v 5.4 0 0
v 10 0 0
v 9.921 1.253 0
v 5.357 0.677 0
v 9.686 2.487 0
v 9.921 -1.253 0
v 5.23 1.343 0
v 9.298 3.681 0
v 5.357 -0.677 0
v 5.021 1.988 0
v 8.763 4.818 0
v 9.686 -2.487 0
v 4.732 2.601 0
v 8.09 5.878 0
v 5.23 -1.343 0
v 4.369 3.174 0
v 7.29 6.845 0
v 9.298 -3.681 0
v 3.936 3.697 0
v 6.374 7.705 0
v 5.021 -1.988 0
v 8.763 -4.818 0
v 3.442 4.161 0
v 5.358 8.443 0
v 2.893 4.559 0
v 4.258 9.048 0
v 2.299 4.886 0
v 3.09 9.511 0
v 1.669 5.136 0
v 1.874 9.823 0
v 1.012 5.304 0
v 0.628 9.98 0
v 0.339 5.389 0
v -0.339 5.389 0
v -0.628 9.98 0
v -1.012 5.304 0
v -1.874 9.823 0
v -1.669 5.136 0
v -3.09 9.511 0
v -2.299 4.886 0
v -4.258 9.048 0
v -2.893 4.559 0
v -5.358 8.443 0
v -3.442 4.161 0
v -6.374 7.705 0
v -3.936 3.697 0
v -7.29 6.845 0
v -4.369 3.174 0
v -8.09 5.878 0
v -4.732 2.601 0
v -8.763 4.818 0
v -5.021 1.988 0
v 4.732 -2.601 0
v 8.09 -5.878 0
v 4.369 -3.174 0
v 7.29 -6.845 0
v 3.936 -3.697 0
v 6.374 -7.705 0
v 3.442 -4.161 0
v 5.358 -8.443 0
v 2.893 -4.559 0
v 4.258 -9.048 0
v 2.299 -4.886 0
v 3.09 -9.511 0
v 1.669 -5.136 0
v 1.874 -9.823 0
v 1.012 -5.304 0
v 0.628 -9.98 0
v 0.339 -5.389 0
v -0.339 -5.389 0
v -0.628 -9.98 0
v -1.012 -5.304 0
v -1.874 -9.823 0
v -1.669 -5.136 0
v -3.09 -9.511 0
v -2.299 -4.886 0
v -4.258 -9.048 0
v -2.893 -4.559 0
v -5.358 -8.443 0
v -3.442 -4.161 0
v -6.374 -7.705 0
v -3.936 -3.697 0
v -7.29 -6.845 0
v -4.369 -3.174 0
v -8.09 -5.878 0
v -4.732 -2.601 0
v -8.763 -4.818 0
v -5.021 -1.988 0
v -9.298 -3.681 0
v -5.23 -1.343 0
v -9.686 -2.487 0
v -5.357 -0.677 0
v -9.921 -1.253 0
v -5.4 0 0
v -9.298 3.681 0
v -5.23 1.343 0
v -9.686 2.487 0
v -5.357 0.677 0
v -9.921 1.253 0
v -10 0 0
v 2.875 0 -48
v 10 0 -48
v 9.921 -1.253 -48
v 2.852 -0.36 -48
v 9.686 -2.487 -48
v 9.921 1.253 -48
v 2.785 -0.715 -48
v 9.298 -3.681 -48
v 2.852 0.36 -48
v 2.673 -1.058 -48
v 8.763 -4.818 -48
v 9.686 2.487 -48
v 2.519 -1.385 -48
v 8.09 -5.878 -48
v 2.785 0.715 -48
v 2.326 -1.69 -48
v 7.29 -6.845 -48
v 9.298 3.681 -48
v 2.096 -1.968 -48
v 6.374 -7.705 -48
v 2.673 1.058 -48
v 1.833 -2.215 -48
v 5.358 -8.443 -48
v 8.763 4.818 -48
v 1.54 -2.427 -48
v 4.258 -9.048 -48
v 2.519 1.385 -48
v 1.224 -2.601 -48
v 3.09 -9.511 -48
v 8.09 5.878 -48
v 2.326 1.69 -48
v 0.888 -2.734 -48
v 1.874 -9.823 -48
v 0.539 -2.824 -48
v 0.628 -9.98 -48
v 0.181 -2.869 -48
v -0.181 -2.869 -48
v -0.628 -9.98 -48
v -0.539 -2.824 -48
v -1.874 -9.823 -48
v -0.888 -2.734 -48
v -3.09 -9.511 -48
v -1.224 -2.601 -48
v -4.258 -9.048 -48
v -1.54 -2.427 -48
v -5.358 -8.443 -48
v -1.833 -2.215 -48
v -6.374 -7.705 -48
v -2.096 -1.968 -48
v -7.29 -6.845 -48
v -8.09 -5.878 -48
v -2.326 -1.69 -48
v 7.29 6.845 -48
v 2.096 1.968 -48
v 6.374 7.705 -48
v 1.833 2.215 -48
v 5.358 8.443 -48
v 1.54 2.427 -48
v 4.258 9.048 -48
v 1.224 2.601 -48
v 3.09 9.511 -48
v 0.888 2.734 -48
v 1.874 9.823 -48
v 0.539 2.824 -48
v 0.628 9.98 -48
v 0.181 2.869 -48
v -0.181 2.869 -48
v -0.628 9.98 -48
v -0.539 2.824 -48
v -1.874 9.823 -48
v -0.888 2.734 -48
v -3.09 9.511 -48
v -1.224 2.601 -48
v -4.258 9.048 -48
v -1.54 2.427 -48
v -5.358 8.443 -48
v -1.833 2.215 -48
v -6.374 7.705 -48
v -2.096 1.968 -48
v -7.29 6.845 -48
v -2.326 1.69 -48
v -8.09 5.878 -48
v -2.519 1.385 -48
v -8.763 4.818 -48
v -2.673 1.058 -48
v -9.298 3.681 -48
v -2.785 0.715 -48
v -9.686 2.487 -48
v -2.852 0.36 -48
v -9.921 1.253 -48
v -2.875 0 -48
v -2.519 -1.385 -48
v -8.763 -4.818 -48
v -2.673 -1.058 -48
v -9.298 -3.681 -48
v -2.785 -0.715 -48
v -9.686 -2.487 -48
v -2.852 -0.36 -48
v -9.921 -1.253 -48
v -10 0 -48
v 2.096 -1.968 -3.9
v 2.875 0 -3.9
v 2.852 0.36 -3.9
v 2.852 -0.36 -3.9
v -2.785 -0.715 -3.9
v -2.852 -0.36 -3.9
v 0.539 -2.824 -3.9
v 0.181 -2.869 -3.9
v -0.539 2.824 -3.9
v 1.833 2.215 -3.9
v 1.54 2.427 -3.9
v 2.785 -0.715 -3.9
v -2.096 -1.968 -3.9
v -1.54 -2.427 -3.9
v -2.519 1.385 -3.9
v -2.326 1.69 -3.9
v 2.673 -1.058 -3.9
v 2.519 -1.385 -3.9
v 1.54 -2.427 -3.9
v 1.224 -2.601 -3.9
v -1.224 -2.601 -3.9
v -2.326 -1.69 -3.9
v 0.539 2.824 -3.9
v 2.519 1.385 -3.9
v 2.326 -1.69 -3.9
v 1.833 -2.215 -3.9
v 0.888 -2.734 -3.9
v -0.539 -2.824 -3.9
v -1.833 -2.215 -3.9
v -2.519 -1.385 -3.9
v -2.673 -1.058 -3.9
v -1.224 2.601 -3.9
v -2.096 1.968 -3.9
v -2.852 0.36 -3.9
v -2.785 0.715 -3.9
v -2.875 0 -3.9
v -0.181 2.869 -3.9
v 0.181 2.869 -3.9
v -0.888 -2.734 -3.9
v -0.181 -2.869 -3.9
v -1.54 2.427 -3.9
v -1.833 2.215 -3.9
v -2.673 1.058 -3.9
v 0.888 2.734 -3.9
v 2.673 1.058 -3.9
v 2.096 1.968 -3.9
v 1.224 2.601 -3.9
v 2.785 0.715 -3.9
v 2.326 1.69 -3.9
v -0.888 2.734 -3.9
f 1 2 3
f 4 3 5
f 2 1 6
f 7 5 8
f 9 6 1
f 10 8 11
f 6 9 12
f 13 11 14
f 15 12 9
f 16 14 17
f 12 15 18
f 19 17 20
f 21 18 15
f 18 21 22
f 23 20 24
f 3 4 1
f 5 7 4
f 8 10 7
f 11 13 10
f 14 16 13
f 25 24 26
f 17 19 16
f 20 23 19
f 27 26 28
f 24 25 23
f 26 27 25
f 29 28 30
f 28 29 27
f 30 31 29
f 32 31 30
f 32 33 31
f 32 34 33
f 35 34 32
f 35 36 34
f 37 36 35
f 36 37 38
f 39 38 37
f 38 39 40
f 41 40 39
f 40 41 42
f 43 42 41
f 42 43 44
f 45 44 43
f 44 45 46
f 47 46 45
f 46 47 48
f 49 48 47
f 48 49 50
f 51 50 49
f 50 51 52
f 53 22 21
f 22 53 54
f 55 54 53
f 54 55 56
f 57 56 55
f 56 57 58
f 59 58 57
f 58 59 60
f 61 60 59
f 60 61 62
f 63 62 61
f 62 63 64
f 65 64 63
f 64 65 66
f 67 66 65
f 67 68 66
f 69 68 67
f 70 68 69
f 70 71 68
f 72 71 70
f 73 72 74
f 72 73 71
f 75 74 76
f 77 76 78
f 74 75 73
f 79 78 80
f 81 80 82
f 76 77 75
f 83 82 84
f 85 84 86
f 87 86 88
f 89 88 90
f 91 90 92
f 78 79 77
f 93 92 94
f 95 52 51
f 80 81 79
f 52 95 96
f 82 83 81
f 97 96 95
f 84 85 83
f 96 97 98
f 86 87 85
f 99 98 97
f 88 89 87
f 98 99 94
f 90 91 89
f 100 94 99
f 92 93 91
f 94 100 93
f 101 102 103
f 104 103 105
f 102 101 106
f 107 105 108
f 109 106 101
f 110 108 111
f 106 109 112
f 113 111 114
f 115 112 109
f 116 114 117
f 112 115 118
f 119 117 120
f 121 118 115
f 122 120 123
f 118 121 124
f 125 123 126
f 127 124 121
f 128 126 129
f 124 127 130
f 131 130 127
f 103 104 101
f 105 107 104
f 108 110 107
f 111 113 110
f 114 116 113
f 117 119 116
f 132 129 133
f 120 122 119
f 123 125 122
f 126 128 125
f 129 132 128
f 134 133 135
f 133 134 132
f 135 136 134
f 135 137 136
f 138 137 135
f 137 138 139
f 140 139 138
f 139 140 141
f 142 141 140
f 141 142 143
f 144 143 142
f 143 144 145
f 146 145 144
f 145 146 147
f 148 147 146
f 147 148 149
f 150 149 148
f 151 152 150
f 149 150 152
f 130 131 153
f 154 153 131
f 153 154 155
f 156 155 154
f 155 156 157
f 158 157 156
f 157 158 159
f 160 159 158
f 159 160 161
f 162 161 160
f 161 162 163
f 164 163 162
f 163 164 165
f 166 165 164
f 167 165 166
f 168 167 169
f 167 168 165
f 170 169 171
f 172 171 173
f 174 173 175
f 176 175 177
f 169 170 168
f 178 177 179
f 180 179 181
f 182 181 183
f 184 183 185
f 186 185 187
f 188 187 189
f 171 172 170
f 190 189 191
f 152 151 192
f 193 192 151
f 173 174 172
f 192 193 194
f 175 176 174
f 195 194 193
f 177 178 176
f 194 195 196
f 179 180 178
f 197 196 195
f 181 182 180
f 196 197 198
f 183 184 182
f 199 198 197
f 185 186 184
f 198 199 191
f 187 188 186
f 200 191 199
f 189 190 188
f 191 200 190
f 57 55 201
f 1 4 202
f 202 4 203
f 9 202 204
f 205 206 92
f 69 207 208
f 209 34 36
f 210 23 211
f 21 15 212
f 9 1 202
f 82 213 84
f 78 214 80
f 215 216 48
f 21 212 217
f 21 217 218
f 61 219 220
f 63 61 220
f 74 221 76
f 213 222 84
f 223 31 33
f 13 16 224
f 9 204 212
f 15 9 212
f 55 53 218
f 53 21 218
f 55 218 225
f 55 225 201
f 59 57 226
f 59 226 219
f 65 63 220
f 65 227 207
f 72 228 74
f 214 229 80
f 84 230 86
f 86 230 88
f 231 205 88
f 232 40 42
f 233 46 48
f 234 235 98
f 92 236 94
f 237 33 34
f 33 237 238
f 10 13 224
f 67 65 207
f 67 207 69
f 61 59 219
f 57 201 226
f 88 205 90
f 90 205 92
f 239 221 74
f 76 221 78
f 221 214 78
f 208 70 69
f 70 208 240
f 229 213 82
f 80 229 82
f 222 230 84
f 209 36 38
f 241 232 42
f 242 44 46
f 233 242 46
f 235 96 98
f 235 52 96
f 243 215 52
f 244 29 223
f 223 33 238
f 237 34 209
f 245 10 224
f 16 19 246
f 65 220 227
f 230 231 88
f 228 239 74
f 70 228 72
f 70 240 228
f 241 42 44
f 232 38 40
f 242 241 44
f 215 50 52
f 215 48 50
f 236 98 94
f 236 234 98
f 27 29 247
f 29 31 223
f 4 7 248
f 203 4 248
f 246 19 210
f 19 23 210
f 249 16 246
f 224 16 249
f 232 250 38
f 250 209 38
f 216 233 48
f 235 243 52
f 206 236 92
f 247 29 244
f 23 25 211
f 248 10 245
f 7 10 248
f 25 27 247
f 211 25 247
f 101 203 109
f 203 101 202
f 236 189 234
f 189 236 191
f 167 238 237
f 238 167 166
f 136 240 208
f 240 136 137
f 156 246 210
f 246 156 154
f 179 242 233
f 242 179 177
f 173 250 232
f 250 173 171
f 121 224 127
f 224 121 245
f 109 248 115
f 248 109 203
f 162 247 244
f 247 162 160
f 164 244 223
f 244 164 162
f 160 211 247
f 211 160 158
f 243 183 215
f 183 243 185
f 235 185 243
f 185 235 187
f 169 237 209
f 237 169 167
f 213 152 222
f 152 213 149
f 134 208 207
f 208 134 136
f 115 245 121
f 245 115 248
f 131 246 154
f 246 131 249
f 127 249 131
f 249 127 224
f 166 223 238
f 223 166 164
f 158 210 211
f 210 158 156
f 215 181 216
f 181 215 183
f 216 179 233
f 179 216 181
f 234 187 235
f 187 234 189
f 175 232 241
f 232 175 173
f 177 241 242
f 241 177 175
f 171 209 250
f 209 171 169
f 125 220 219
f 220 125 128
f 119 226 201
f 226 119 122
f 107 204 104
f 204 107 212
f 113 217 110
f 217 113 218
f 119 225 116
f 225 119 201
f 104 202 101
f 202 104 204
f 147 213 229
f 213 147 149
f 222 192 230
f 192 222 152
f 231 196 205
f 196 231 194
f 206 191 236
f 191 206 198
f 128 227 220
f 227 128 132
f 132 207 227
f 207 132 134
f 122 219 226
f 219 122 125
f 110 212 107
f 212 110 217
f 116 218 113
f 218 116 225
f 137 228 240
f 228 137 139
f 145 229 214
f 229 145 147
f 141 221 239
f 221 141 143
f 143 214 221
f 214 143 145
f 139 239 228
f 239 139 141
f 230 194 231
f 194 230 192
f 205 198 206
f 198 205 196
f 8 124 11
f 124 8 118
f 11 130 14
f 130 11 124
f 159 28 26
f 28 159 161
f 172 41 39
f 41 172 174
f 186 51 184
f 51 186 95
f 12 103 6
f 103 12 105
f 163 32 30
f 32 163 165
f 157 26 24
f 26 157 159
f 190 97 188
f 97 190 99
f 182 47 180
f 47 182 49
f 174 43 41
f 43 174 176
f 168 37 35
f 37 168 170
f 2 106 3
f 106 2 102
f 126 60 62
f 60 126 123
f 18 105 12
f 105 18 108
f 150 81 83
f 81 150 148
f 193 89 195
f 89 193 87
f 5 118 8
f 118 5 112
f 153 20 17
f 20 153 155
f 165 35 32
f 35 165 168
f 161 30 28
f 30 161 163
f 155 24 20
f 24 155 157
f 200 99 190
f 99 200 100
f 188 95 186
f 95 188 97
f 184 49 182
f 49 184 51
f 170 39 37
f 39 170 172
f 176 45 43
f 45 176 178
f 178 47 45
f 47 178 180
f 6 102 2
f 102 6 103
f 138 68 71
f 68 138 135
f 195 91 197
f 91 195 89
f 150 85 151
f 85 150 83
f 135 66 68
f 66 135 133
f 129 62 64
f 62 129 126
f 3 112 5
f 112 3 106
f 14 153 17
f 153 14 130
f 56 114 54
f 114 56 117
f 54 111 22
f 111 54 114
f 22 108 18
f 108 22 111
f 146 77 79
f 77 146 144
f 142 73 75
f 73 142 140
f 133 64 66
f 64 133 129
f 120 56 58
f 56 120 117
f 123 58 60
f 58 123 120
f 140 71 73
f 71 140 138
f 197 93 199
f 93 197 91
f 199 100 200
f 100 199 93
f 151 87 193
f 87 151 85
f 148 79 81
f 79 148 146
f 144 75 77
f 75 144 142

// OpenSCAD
$fn = 50;


difference() {
	union() {
		translate(v = [0, 0, -48.0000000000]) {
			cylinder(h = 48, r = 10.0000000000);
		}
		cylinder(h = 0, r = 13.0000000000);
	}
	union() {
		translate(v = [0, 0, 0]) {
			rotate(a = [0, 0, 0]) {
				difference() {
					union() {
						#translate(v = [0, 0, -48.0000000000]) {
							cylinder(h = 48, r = 2.6000000000);
						}
						#translate(v = [0, 0, -3.9000000000]) {
							cylinder(h = 3.9000000000, r1 = 2.8750000000, r2 = 5.4000000000);
						}
						#translate(v = [0, 0, -48.0000000000]) {
							cylinder(h = 48, r = 2.8750000000);
						}
						#translate(v = [0, 0, -48.0000000000]) {
							cylinder(h = 48, r = 2.6000000000);
						}
					}
					union();
				}
			}
		}
	}
}
